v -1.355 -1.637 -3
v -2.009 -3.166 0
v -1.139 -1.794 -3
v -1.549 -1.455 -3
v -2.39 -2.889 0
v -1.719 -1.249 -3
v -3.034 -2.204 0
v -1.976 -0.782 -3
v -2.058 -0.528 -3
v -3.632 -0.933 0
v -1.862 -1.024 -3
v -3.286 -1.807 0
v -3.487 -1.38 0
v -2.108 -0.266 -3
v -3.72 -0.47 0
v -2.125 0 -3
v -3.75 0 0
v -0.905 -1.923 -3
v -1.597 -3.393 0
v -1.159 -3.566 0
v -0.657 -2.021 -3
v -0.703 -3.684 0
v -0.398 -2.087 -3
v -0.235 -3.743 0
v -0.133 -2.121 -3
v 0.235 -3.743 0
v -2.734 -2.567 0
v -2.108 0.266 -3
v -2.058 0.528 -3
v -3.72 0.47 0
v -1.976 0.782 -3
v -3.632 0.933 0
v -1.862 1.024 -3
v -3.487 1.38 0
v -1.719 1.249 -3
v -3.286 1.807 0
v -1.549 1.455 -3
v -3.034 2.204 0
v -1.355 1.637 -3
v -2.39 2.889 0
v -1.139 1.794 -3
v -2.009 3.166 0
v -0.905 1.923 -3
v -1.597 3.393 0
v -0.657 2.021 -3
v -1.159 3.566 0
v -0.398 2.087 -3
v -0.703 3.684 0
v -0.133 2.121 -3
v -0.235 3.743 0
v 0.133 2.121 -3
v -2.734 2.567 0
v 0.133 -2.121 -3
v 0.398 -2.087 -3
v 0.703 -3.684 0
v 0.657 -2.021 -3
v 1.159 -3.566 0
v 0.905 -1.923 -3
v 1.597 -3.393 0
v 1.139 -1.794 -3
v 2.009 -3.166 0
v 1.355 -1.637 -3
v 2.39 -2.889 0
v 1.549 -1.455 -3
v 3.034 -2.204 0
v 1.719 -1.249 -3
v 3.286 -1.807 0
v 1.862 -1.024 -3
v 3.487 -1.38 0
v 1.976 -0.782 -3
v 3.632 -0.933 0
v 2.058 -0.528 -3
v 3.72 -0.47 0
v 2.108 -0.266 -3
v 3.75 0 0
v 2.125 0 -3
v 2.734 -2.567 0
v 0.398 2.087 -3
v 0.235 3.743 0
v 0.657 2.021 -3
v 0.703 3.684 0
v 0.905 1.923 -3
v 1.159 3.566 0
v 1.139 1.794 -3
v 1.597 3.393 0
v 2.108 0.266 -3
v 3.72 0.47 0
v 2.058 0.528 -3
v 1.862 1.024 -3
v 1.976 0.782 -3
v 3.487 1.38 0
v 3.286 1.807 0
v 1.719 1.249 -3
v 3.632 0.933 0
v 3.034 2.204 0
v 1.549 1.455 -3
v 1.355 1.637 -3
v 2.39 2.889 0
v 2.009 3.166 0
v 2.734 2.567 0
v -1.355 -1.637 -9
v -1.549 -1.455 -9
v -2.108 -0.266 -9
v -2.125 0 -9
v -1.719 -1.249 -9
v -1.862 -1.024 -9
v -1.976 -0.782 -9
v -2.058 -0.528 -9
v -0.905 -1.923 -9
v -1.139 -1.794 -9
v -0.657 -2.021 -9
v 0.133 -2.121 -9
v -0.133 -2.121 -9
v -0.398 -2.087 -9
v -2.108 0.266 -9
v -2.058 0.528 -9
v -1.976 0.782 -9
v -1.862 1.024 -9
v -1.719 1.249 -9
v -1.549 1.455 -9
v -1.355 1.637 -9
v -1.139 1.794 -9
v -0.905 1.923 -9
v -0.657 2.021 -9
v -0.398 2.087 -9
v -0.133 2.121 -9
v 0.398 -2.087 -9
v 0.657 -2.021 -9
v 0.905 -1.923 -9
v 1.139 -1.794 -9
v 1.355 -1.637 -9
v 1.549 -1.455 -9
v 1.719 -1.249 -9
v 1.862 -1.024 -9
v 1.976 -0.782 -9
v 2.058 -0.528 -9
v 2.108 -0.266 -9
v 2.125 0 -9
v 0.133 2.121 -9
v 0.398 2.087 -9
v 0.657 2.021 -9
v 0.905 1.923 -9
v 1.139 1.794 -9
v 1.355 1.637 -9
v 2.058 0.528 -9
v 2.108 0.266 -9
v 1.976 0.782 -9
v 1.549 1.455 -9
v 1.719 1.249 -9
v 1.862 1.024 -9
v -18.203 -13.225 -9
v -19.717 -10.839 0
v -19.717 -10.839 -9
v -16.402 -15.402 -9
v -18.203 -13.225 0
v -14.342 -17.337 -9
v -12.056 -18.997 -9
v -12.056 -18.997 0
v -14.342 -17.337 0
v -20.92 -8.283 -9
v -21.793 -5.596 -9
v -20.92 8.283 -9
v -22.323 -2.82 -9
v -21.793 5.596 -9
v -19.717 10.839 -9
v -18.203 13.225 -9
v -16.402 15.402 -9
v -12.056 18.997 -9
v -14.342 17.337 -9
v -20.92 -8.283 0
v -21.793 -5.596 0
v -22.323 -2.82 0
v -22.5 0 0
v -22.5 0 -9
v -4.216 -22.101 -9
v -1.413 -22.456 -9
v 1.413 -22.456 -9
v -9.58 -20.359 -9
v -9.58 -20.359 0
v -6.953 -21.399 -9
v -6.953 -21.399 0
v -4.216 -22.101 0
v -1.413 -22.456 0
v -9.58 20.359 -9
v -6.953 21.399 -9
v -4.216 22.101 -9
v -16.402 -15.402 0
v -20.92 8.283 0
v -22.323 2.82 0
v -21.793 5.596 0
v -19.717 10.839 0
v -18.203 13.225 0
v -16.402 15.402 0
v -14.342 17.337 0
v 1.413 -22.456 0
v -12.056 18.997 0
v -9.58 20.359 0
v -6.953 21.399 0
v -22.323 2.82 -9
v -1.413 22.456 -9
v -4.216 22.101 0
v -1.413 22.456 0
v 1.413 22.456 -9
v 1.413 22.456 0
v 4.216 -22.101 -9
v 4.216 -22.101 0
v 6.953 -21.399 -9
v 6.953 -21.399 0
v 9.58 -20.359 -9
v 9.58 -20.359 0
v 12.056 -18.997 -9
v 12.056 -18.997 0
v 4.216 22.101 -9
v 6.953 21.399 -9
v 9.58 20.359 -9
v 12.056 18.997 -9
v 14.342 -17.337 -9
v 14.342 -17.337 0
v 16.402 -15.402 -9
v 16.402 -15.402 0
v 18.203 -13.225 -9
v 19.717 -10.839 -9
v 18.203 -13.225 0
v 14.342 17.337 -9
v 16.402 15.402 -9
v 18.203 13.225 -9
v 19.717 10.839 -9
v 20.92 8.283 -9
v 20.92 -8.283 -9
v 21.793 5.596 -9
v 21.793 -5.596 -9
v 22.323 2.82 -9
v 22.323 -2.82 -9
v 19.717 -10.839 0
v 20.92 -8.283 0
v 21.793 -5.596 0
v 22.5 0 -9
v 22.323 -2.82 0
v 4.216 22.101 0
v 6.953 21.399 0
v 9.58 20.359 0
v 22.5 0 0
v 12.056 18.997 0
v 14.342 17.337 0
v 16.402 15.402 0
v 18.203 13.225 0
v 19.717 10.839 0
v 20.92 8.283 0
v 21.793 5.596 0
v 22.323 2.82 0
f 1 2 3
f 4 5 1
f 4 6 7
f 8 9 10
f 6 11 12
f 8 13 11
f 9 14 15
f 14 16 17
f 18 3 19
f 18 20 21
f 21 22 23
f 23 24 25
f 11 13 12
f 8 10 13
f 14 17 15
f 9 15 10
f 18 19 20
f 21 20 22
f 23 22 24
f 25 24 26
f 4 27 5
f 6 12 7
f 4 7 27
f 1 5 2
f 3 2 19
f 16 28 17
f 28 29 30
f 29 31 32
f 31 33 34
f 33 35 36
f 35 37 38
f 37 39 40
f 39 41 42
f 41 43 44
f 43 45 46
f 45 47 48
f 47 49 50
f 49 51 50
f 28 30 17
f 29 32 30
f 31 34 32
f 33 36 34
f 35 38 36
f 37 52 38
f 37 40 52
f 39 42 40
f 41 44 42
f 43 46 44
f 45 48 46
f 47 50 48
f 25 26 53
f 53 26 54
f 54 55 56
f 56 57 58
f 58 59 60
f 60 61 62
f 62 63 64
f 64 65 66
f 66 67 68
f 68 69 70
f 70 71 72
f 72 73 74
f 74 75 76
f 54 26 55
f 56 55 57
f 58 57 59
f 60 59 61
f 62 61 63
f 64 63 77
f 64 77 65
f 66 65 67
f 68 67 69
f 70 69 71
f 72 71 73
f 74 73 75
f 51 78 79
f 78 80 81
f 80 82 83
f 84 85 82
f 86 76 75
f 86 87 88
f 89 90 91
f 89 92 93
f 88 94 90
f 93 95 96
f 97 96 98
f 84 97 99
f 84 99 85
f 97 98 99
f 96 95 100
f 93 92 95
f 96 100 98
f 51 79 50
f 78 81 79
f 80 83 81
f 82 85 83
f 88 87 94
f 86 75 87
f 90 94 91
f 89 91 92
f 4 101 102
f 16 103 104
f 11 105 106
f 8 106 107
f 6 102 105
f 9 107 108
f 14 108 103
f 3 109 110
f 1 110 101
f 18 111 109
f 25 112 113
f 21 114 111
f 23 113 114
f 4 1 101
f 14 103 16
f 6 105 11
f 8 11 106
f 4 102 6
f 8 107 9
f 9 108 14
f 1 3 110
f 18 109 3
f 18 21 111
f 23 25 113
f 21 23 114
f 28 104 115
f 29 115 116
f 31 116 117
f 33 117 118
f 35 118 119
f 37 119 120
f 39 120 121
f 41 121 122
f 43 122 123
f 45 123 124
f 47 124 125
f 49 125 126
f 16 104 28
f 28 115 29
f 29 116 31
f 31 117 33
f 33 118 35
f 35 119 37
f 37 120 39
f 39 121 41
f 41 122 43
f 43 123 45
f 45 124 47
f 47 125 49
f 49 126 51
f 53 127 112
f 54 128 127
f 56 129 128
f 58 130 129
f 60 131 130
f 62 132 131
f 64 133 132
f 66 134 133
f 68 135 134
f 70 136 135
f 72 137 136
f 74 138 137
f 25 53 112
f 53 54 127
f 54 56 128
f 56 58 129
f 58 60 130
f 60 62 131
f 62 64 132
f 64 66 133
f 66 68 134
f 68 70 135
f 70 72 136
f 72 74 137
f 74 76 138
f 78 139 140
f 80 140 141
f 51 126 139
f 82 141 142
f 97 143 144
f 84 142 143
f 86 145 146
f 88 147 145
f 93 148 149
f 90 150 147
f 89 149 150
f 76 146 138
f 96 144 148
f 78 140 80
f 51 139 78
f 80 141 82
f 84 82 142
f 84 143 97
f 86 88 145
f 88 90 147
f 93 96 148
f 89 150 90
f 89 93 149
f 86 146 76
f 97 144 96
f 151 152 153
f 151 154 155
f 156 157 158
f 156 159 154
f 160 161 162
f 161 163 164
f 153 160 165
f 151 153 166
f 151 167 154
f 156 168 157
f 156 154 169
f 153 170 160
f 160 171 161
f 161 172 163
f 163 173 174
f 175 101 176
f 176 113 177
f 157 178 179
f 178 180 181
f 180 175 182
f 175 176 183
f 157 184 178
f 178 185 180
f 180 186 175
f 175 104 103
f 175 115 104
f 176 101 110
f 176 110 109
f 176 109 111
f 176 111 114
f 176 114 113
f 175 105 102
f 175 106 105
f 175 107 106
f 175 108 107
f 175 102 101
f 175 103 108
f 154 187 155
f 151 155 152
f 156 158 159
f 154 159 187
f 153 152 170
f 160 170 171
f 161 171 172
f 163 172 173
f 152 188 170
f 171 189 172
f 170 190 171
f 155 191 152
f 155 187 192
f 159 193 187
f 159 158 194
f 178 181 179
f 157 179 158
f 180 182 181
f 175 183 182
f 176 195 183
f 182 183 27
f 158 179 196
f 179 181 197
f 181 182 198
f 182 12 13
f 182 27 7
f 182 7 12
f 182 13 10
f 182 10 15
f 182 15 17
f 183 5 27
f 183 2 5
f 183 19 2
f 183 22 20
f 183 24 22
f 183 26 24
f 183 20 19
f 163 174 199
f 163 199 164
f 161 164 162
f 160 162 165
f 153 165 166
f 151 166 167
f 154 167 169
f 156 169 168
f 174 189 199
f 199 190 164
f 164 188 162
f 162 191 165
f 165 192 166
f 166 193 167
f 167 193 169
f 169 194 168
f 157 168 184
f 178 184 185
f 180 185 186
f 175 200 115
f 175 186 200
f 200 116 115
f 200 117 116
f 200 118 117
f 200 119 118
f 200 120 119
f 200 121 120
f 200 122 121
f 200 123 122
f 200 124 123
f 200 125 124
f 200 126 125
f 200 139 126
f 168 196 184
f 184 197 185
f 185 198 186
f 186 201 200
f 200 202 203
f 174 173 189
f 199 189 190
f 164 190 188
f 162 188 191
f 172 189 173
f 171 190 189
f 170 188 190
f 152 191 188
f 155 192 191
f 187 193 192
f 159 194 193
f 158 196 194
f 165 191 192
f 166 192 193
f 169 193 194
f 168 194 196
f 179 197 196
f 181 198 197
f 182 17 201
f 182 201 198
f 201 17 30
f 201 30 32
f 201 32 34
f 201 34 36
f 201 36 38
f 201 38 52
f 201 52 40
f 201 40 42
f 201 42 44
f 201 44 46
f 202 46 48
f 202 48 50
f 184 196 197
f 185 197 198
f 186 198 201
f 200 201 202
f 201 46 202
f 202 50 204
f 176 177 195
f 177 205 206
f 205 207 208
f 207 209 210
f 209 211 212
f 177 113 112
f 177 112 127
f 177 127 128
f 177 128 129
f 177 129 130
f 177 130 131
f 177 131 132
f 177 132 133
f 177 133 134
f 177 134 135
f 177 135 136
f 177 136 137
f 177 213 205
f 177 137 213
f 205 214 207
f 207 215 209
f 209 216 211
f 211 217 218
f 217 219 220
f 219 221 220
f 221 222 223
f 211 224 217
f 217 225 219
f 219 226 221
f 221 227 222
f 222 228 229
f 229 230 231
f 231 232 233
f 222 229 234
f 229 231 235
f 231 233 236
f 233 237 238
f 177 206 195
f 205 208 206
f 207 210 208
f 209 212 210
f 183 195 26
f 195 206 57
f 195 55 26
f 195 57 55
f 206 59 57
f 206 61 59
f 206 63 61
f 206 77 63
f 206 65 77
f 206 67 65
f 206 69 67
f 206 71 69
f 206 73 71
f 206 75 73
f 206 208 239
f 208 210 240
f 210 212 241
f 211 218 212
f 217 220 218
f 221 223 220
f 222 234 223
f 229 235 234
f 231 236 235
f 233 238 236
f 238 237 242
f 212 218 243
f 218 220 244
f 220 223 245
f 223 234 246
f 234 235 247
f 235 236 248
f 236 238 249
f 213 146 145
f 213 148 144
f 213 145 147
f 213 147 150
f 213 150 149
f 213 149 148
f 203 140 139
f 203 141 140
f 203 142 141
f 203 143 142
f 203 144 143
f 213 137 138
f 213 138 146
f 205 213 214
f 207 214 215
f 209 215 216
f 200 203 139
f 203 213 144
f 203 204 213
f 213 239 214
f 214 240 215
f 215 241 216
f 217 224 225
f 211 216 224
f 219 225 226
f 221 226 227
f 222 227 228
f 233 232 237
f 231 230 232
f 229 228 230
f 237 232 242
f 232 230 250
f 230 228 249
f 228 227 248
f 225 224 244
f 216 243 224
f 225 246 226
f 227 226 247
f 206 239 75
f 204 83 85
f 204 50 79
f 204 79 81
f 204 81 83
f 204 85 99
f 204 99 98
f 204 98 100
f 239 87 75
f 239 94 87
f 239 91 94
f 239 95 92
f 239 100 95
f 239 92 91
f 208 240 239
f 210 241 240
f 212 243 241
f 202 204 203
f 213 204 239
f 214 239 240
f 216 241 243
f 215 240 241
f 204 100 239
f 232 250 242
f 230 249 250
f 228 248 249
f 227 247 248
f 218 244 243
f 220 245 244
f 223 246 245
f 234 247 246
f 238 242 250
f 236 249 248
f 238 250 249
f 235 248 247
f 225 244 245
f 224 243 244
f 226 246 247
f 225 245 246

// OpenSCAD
$fn = 50;

difference() {
	union() {
		translate(v = [0, 0, -9.0]) {
			cylinder(h = 9, r = 22.5);
		}
	}
	union() {
		translate(v = [0, 0, 0]) {
			rotate(a = [0, 0, 0]) {
				difference() {
					union() {
						translate(v = [0, 0, -12.0]) {
							cylinder(h = 12, r = 2.0);
						}
						translate(v = [0, 0, -3]) {
							cylinder(h = 3, r1 = 2.125, r2 = 3.75);
						}
						translate(v = [0, 0, -12.0]) {
							cylinder(h = 12, r = 2.125);
						}
						translate(v = [0, 0, -12.0]) {
							cylinder(h = 12, r = 2.0);
						}
					}
					union();
				}
			}
		}
	}
}
